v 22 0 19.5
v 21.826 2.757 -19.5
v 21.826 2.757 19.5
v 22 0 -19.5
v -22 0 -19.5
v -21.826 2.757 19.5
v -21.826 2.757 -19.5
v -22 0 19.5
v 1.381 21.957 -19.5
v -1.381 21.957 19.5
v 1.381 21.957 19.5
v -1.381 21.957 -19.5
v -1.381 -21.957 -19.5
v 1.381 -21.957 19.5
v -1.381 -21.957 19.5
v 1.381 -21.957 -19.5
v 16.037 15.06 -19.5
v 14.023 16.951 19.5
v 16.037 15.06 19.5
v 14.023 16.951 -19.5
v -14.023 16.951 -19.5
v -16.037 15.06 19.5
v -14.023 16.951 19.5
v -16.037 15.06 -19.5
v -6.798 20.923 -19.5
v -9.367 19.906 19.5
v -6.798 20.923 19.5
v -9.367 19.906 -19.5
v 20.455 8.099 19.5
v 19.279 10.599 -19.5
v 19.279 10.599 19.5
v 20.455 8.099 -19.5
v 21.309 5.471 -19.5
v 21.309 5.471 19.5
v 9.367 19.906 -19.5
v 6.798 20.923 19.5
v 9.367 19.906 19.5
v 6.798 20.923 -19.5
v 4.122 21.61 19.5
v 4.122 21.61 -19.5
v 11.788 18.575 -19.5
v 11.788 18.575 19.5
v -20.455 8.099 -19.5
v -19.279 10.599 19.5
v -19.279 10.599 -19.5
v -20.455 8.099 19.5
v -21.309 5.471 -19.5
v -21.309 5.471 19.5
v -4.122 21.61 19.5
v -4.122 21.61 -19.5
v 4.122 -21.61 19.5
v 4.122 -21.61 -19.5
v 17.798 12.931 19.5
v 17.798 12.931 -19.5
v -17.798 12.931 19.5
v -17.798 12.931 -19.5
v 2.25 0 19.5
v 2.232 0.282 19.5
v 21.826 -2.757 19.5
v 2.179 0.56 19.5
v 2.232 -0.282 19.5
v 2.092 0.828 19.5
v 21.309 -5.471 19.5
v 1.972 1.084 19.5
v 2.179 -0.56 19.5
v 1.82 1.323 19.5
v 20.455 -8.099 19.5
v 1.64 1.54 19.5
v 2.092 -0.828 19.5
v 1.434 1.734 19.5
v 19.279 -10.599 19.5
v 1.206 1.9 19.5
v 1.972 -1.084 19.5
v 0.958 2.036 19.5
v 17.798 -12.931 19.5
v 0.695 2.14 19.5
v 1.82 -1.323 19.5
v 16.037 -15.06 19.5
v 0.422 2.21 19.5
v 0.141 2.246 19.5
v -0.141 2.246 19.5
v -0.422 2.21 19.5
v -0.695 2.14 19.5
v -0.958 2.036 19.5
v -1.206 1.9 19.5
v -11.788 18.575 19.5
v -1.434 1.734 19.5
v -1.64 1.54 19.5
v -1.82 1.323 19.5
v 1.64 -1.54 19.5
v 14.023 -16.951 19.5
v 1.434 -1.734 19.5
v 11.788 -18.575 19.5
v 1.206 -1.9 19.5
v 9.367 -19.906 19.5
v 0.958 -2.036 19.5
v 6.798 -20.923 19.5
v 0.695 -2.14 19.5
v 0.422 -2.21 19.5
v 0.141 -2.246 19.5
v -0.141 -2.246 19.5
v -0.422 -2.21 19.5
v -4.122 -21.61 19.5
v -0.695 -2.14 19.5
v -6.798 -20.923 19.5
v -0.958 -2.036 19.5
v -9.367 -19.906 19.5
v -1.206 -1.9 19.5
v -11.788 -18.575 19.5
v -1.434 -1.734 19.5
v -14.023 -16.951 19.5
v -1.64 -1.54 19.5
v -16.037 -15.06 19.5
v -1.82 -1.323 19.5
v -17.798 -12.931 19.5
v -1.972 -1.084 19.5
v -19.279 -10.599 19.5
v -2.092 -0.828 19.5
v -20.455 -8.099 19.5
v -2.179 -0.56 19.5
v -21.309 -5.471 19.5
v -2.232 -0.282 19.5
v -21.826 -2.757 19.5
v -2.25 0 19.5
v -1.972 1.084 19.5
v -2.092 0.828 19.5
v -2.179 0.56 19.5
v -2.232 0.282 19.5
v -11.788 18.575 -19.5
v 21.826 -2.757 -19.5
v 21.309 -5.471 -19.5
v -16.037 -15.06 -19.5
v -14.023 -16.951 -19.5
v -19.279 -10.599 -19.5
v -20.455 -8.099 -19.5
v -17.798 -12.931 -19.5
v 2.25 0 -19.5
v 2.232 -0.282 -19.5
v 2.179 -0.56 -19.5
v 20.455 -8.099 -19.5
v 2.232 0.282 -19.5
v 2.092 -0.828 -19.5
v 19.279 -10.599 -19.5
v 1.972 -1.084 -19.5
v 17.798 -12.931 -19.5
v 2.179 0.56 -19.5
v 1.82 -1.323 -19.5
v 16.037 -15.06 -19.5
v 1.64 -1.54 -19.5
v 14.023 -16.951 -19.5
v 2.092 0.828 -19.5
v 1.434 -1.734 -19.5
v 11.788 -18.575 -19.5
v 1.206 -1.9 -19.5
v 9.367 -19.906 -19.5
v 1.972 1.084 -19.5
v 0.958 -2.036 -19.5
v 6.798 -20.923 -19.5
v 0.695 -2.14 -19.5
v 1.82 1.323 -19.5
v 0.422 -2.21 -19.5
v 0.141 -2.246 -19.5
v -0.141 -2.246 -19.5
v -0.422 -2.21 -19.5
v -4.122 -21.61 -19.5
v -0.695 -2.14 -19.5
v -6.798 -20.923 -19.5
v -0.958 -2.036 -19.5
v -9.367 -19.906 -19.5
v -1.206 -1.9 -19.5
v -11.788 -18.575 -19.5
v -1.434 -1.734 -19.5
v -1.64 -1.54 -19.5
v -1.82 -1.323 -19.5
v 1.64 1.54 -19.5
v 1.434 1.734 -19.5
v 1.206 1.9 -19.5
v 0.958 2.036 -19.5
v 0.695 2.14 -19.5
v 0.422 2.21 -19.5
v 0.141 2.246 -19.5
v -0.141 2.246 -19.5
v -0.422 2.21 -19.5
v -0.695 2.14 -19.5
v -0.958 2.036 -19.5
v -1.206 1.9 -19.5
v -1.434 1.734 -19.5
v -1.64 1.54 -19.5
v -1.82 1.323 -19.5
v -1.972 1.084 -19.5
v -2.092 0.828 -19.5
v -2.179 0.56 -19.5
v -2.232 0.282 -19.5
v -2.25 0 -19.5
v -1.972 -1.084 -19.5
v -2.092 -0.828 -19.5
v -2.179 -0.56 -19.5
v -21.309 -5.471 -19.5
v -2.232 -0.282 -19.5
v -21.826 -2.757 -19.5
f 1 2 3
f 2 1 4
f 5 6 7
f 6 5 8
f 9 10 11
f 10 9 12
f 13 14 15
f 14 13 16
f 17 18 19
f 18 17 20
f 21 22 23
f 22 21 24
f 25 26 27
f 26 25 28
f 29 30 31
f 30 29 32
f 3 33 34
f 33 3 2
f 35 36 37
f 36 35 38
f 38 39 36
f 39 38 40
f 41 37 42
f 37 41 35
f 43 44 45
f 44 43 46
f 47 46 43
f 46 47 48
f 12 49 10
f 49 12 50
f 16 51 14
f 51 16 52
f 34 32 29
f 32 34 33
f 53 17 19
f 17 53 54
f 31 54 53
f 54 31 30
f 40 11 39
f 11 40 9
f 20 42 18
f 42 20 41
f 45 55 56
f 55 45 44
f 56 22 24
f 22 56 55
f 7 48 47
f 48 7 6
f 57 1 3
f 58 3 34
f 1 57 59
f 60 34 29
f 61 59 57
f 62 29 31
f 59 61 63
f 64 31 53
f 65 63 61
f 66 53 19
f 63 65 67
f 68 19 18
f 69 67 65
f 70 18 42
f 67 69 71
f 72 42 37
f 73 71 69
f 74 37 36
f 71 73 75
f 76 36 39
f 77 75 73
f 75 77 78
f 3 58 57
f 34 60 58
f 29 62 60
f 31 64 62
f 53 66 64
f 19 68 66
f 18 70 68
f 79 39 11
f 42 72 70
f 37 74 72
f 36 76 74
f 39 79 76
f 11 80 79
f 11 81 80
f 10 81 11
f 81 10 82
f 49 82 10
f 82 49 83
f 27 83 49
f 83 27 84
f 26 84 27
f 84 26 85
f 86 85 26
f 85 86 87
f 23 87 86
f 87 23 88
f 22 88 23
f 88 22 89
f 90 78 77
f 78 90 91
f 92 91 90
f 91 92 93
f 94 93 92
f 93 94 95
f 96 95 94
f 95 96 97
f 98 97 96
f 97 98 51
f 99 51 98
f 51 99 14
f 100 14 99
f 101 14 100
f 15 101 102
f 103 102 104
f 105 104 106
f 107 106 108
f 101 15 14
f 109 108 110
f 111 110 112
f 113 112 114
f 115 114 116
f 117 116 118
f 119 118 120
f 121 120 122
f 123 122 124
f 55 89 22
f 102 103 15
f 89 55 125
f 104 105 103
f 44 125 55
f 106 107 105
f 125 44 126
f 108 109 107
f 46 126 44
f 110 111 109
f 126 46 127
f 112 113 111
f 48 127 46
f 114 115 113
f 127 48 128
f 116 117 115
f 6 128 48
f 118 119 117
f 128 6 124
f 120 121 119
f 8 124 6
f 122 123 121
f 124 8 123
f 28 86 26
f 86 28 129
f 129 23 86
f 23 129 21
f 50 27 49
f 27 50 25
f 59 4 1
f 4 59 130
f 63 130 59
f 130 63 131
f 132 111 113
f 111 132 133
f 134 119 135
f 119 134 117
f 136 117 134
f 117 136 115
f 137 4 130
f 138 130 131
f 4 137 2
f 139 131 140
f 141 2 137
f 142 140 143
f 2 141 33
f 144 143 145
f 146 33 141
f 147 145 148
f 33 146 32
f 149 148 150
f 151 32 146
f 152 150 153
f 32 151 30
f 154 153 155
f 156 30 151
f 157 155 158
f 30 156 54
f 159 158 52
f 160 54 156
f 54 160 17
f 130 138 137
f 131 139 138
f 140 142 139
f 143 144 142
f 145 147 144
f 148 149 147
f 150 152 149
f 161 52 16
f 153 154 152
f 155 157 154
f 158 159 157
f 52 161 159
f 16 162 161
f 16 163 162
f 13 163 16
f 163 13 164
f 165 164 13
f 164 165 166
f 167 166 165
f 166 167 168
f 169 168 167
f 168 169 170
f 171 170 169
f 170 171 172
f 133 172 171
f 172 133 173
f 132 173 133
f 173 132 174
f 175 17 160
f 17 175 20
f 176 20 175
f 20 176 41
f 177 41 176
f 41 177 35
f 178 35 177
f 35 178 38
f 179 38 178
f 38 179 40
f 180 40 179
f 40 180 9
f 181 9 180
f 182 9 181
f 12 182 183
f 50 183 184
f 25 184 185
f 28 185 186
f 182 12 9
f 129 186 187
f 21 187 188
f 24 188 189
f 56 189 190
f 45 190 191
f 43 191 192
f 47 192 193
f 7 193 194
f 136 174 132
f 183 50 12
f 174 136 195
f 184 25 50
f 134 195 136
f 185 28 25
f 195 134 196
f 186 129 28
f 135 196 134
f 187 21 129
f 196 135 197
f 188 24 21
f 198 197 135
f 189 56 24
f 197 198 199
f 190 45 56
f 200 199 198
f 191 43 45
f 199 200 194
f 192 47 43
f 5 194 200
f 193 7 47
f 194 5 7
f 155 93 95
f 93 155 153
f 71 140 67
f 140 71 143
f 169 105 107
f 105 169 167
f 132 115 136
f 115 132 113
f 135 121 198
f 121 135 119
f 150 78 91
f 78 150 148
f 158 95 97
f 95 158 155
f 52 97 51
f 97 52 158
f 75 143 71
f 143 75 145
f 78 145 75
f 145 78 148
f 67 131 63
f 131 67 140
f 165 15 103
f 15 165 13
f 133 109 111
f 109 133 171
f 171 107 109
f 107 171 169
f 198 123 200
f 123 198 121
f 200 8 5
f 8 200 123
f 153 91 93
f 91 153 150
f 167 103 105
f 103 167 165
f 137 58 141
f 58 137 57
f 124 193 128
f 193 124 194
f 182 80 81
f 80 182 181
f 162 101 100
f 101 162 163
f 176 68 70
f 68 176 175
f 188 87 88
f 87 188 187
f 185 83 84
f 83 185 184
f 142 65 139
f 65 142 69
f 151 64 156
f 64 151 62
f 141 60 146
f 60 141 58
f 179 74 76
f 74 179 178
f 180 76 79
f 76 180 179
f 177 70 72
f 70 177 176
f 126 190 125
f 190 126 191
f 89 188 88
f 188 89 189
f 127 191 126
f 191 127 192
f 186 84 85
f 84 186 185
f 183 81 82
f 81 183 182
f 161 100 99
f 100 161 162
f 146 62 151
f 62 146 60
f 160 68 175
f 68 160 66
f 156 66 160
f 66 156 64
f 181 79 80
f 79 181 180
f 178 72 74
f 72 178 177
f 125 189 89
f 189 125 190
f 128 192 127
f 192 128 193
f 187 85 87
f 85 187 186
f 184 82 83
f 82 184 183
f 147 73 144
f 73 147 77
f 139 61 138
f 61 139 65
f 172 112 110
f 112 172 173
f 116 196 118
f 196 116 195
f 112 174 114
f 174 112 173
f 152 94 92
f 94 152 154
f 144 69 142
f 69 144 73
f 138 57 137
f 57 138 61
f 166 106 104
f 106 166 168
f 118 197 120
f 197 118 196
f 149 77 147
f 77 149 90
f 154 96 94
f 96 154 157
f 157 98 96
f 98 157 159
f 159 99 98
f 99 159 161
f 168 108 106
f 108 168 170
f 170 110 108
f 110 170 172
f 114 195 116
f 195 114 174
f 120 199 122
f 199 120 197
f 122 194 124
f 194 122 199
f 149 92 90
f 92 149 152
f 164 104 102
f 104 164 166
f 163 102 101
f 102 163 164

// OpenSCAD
$fn = 50;


difference() {
	union() {
		translate(v = [0, 0, -19.5000000000]) {
			cylinder(h = 39, r = 22.0000000000);
		}
	}
	union() {
		translate(v = [0, 0, -100.0000000000]) {
			cylinder(h = 200, r = 2.2500000000);
		}
	}
}
